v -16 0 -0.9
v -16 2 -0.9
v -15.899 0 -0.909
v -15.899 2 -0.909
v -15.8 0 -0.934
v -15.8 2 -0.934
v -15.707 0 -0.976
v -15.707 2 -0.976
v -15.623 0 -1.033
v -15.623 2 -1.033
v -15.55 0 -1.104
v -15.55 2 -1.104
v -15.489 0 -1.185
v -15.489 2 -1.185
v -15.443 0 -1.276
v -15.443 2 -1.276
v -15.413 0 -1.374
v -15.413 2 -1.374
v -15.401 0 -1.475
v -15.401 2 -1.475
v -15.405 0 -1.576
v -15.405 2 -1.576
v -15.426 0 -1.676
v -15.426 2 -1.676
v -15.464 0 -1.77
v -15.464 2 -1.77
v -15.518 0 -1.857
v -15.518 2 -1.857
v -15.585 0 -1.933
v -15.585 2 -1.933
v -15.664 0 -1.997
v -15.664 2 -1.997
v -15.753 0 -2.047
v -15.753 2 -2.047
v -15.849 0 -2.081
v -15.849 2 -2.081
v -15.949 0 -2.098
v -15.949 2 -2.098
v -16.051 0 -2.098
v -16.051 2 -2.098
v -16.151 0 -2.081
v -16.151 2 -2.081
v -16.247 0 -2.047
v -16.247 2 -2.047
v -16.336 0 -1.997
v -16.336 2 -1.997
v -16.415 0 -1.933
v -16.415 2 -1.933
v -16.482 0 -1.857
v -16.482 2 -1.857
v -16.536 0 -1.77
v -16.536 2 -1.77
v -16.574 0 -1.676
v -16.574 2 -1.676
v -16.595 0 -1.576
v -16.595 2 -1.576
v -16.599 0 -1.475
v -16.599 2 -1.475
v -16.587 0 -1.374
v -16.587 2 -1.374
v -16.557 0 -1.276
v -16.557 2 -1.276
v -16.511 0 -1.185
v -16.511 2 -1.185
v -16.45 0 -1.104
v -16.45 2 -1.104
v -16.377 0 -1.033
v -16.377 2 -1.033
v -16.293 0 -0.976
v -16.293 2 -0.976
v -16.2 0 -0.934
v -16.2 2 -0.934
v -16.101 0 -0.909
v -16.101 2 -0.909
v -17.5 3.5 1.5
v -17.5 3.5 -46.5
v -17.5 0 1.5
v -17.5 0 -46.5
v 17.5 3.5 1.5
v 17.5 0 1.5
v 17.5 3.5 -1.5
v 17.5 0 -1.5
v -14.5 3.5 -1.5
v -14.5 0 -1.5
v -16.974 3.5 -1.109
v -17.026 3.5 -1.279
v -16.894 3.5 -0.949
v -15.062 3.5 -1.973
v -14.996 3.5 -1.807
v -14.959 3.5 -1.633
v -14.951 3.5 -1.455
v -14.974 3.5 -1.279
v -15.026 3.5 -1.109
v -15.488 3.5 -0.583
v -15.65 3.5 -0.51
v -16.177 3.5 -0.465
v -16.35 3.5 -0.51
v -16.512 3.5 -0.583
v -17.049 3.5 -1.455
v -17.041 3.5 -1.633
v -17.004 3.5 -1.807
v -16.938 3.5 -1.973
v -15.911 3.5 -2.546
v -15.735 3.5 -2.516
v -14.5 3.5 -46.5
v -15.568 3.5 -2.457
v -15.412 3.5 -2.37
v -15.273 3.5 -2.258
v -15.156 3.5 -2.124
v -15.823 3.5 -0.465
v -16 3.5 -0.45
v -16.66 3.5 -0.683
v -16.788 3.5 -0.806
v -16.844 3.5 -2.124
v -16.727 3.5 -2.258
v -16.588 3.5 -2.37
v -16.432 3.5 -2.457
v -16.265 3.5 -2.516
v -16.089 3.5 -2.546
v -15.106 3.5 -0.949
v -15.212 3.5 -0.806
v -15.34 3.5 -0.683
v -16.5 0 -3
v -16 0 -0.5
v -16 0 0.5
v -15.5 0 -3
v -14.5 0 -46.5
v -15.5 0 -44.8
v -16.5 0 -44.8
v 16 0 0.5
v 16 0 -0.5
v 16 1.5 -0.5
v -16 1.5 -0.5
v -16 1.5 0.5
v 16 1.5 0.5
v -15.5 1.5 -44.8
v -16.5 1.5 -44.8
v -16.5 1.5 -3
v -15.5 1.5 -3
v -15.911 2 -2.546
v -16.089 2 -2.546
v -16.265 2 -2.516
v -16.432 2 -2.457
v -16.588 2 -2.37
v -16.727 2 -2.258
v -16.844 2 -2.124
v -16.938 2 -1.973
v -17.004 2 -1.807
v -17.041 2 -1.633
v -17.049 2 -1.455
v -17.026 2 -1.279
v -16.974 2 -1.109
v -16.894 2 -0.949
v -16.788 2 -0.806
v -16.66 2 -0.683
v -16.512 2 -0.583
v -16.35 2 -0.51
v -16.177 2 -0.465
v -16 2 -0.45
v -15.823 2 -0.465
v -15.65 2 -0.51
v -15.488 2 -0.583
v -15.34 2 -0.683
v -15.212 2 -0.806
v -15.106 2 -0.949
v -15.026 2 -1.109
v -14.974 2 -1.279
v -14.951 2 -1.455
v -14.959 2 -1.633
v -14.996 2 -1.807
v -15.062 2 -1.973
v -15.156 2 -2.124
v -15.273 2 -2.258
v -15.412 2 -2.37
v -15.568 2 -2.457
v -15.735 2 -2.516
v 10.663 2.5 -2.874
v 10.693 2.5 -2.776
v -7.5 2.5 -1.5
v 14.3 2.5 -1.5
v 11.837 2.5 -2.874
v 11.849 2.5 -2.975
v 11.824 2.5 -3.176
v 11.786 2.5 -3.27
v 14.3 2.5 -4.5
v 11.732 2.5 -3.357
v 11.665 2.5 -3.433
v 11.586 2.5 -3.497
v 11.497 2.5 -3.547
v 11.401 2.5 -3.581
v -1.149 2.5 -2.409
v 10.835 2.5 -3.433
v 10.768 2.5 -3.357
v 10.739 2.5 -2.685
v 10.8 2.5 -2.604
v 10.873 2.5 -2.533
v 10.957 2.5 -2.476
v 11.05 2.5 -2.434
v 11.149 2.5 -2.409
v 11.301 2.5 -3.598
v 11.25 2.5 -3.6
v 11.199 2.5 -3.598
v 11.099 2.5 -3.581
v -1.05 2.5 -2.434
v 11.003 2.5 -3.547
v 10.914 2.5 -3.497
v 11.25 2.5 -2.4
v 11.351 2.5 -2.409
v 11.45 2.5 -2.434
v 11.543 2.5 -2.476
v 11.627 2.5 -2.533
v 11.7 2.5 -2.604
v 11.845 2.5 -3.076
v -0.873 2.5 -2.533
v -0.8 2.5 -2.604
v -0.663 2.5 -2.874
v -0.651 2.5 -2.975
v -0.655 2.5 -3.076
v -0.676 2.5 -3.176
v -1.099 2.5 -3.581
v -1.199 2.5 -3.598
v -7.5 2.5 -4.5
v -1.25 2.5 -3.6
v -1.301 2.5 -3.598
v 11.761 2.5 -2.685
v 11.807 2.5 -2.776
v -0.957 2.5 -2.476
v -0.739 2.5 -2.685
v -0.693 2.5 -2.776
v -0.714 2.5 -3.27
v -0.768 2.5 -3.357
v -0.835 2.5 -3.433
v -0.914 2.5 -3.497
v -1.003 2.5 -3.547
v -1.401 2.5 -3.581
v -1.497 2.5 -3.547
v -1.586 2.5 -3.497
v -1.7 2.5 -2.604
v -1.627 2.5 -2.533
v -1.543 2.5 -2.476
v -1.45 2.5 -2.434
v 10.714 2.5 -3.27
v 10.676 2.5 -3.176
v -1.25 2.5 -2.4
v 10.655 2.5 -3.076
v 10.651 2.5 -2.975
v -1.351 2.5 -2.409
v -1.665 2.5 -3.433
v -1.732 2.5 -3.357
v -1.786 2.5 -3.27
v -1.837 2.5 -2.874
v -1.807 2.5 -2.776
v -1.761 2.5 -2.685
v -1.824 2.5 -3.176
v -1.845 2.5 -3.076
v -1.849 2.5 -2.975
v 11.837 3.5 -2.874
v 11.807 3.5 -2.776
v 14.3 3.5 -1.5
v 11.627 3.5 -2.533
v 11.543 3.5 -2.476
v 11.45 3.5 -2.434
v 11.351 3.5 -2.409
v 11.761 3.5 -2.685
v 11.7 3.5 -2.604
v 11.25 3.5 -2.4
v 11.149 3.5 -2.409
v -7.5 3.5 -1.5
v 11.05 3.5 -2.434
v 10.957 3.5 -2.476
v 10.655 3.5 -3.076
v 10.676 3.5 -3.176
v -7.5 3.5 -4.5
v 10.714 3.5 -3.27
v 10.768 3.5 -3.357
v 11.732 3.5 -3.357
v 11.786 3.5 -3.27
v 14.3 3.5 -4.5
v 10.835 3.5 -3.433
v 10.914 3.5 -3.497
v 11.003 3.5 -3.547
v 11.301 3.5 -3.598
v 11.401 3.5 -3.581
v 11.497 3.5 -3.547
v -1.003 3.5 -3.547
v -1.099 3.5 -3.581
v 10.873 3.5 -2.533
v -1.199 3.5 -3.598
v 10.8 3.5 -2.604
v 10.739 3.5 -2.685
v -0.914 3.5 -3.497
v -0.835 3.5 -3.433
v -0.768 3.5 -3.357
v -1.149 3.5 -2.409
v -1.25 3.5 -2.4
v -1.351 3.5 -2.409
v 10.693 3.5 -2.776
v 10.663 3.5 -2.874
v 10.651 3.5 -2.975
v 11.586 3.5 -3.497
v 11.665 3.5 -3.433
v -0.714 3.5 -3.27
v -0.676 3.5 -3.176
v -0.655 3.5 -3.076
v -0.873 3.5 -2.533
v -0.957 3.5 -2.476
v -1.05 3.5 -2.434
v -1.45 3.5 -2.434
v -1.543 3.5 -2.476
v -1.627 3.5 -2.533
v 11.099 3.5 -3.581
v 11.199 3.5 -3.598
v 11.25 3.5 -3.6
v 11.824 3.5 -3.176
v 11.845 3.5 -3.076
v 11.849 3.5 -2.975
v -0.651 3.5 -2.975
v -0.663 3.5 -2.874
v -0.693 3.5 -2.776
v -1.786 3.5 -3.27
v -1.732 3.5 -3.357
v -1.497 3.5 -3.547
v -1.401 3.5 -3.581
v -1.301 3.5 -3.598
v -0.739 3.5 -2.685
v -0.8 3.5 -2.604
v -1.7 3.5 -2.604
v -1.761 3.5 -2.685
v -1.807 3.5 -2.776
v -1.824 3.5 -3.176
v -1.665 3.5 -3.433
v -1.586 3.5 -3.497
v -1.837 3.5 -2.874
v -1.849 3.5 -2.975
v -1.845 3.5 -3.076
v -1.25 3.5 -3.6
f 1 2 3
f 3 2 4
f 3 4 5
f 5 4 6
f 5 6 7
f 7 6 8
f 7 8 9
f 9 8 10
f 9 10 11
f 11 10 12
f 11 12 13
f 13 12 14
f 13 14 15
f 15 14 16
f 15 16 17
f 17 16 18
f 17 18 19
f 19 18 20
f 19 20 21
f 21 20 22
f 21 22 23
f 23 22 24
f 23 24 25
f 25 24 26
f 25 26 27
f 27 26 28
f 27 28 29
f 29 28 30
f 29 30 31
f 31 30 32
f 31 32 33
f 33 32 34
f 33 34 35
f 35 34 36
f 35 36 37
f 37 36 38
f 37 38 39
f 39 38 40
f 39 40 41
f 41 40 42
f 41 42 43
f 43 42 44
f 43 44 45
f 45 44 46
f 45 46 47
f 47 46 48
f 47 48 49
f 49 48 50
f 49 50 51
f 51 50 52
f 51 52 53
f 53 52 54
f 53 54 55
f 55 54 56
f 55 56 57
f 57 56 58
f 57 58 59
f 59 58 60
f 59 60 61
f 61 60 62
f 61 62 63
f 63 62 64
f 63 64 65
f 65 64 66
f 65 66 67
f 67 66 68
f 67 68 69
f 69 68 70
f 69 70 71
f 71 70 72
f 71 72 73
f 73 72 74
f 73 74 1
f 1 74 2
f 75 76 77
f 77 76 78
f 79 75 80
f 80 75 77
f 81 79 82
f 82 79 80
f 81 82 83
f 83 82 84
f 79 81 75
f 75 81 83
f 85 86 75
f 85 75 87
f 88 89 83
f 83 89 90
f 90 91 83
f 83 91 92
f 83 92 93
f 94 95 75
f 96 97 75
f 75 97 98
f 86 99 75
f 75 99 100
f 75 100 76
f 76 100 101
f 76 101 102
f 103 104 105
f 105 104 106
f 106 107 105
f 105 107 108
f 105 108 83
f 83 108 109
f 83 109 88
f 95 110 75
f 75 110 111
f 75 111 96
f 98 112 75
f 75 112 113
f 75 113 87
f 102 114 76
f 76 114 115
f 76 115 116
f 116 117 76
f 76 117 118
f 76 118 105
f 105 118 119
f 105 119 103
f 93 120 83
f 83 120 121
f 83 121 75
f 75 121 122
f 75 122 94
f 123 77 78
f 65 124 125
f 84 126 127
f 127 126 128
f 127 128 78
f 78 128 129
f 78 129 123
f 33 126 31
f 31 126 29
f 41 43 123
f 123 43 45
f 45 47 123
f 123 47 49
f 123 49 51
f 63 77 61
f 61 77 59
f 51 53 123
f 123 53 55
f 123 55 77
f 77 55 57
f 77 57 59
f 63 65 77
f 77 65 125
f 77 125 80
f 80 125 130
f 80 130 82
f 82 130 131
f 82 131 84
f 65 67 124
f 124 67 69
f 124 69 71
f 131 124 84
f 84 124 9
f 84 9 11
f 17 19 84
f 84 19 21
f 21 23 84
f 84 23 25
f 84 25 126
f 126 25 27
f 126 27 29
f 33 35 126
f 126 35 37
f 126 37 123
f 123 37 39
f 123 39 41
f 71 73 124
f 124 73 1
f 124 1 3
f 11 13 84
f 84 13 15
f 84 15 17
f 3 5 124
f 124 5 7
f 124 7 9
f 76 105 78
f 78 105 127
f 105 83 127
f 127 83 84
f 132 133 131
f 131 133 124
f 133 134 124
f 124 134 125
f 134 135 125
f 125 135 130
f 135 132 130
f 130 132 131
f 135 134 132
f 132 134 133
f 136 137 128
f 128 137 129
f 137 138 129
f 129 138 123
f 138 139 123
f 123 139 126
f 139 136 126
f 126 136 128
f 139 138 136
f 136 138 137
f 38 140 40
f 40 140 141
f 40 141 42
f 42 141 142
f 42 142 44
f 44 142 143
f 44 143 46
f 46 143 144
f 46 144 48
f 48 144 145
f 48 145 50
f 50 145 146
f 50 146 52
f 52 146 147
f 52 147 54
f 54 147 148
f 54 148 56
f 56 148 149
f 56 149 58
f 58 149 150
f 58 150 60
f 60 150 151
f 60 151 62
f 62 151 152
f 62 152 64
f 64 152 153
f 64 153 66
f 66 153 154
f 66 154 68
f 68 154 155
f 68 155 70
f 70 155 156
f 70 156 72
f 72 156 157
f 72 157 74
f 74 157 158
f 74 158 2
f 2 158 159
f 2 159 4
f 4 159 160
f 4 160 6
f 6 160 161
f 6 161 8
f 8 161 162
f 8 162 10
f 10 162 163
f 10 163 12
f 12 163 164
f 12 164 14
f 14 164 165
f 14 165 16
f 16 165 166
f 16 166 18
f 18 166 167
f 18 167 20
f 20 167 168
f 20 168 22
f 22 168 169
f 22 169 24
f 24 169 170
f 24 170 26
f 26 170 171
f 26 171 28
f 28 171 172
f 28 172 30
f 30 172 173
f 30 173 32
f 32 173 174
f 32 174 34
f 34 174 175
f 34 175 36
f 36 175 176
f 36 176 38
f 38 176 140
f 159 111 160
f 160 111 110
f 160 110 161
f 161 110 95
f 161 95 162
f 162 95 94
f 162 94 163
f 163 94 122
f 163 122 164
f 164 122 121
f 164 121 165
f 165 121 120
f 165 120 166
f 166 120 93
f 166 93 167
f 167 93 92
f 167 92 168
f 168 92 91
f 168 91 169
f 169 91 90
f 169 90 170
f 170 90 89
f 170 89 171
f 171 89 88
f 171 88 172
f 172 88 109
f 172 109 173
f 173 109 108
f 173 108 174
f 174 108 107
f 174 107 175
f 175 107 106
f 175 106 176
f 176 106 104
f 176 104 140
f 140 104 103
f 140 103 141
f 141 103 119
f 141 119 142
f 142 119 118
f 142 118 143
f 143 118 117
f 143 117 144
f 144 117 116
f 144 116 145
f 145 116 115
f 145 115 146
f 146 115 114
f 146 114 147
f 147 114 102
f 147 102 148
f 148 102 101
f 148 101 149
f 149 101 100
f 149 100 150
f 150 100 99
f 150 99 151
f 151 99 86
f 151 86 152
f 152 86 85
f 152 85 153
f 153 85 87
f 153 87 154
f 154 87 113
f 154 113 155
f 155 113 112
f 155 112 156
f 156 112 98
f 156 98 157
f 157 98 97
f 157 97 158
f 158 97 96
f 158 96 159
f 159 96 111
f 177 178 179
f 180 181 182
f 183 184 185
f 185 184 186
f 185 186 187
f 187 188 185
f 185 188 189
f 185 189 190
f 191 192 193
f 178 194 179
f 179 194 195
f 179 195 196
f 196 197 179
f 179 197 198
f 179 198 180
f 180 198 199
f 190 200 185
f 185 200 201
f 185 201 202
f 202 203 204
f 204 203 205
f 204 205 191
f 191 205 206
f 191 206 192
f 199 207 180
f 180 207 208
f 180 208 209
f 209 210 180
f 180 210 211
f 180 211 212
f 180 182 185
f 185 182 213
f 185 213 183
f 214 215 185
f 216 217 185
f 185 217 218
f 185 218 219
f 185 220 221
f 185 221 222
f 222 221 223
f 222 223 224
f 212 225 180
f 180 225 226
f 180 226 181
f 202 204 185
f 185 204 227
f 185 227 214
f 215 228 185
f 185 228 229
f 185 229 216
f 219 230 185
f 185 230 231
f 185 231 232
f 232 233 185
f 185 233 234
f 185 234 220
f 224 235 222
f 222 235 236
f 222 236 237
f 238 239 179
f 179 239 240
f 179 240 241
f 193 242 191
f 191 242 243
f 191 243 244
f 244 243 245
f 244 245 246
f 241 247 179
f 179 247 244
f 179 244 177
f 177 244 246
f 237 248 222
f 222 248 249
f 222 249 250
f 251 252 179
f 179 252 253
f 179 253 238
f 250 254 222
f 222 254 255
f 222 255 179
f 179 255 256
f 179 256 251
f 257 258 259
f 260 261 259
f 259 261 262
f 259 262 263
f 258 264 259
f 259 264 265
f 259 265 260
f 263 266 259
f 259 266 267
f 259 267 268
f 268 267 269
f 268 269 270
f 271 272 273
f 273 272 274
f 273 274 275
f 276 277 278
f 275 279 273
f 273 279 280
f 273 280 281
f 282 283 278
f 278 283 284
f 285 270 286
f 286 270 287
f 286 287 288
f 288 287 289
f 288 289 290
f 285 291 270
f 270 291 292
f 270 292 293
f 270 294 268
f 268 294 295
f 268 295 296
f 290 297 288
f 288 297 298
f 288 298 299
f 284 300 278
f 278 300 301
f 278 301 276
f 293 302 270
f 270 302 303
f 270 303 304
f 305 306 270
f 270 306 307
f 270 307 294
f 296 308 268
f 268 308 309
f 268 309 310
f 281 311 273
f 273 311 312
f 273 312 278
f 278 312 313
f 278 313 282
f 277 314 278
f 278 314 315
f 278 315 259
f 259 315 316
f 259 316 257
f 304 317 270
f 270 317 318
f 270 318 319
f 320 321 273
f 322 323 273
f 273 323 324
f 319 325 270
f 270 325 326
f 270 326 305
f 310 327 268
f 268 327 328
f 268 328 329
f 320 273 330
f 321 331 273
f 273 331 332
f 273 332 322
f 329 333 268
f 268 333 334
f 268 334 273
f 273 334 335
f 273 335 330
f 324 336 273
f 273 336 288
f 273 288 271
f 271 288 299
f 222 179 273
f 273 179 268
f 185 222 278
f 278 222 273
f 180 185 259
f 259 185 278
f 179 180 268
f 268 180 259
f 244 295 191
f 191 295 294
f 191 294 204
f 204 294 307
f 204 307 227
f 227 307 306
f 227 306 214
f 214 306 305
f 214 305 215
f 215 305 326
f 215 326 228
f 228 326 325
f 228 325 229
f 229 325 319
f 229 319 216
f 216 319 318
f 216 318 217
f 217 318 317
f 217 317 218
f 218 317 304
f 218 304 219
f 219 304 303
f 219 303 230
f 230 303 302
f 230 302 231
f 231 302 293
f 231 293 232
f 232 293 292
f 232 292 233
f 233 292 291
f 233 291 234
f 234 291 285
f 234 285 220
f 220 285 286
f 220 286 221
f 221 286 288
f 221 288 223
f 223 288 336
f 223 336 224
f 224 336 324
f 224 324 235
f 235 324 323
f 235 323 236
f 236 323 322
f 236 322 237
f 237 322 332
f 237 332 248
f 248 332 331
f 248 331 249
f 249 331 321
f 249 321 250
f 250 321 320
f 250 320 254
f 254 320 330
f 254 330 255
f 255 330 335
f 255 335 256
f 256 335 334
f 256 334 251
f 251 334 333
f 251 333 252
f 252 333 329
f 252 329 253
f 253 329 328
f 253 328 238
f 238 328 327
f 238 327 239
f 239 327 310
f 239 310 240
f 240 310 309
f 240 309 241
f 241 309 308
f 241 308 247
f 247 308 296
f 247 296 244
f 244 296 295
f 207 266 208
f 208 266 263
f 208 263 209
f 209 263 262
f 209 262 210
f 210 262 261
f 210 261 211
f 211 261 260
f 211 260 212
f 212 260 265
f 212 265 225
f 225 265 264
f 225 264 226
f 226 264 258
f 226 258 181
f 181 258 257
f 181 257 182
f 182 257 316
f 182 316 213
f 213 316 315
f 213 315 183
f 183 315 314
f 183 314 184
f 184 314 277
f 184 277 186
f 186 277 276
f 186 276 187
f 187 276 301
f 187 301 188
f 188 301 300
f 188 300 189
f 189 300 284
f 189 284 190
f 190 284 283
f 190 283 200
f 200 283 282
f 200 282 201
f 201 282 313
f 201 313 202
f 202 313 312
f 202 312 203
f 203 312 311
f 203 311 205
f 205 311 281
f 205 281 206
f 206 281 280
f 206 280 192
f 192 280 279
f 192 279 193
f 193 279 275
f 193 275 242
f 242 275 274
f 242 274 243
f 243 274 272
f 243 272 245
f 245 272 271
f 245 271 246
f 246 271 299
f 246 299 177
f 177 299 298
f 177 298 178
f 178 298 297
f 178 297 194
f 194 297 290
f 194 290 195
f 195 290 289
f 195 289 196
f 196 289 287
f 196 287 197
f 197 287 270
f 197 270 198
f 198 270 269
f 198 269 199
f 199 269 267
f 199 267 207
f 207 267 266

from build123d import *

# Parameters (mm, degrees)
EXTRUDE_1_DEPTH     = 3.5
SKETCH_2_W          = 1
SKETCH_2_H          = 41.8
SKETCH_2_W_2        = 32
SKETCH_2_H_2        = 1
CUT_EXTRUDE_1_DEPTH = 1.5
SKETCH_3_R          = 0.6
CUT_EXTRUDE_2_DEPTH = 50.807128004
SKETCH_3_4_R        = 1.05
CUT_EXTRUDE_5_DEPTH = 1.5
EXTRUDE_START       = -3.5
SKETCH_4_W          = 21.8
SKETCH_4_H          = 3
SKETCH_4_R          = 1
SKETCH_4_R_2        = 0.6
EXTRUDE_2_DEPTH     = 1


with BuildPart() as part:
    # 草图1 → 凸台-拉伸1 (new body)
    with BuildSketch(Plane(origin=(0, 0, 0), x_dir=(1, 0, 0), z_dir=(0, 1, 0))):
        Polygon((-17.5, -1.5), (17.5, -1.5), (17.5, 1.5), (-14.5, 1.5), (-14.5, 46.5), (-17.5, 46.5), align=None)
    extrude(amount=EXTRUDE_1_DEPTH)

    # 草图2 → 切除-拉伸1 (cut)
    with BuildSketch(Plane.XZ):
        with Locations((-16, -23.9)):
            Rectangle(SKETCH_2_W, SKETCH_2_H)
        Rectangle(SKETCH_2_W_2, SKETCH_2_H_2)
    extrude(amount=-CUT_EXTRUDE_1_DEPTH, mode=Mode.SUBTRACT)

    # 草图3 → 切除-拉伸2 (cut, through all)
    with BuildSketch(Plane(origin=(0, 3.5, 0), x_dir=(1, 0, 0), z_dir=(0, 1, 0))):
        with Locations(Location((-16, 1.5, 0), (0, 0, 270))):
            Circle(SKETCH_3_R)
    extrude(amount=-CUT_EXTRUDE_2_DEPTH, mode=Mode.SUBTRACT)

    # 草图3<4> → 切除-拉伸5 (cut)
    with BuildSketch(Plane(origin=(0, 3.5, 0), x_dir=(1, 0, 0), z_dir=(0, 1, 0))):
        with Locations(Location((-16, 1.5, 0), (0, 0, 270))):
            Circle(SKETCH_3_4_R)
    extrude(amount=-CUT_EXTRUDE_5_DEPTH, mode=Mode.SUBTRACT)


with BuildPart() as body_2:
    # 草图4 → 凸台-拉伸2 (new body)
    # profile 1 of 3: a face of its own
    with BuildSketch(Plane.XZ.offset(EXTRUDE_START)):
        with Locations((3.4, -3)):
            Rectangle(SKETCH_4_W, SKETCH_4_H)
        with Locations((-1.25, -3.000000894)):
            Circle(SKETCH_4_R, mode=Mode.SUBTRACT)
        with Locations((11.25, -3.000000894)):
            Circle(SKETCH_4_R, mode=Mode.SUBTRACT)
    # profile 2 of 3: a face of its own
    with BuildSketch(Plane.XZ.offset(EXTRUDE_START)):
        with Locations((-1.25, -3.000000894)):
            Circle(SKETCH_4_R)
        with Locations(Location((-1.25, -3.000000894, 0), (0, 0, 270))):
            Circle(SKETCH_4_R_2, mode=Mode.SUBTRACT)
    # profile 3 of 3: a face of its own
    with BuildSketch(Plane.XZ.offset(EXTRUDE_START)):
        with Locations((11.25, -3.000000894)):
            Circle(SKETCH_4_R)
        with Locations(Location((11.25, -3.000000894, 0), (0, 0, 270))):
            Circle(SKETCH_4_R_2, mode=Mode.SUBTRACT)
    extrude(amount=EXTRUDE_2_DEPTH)


solid = Compound([part.part, body_2.part])
